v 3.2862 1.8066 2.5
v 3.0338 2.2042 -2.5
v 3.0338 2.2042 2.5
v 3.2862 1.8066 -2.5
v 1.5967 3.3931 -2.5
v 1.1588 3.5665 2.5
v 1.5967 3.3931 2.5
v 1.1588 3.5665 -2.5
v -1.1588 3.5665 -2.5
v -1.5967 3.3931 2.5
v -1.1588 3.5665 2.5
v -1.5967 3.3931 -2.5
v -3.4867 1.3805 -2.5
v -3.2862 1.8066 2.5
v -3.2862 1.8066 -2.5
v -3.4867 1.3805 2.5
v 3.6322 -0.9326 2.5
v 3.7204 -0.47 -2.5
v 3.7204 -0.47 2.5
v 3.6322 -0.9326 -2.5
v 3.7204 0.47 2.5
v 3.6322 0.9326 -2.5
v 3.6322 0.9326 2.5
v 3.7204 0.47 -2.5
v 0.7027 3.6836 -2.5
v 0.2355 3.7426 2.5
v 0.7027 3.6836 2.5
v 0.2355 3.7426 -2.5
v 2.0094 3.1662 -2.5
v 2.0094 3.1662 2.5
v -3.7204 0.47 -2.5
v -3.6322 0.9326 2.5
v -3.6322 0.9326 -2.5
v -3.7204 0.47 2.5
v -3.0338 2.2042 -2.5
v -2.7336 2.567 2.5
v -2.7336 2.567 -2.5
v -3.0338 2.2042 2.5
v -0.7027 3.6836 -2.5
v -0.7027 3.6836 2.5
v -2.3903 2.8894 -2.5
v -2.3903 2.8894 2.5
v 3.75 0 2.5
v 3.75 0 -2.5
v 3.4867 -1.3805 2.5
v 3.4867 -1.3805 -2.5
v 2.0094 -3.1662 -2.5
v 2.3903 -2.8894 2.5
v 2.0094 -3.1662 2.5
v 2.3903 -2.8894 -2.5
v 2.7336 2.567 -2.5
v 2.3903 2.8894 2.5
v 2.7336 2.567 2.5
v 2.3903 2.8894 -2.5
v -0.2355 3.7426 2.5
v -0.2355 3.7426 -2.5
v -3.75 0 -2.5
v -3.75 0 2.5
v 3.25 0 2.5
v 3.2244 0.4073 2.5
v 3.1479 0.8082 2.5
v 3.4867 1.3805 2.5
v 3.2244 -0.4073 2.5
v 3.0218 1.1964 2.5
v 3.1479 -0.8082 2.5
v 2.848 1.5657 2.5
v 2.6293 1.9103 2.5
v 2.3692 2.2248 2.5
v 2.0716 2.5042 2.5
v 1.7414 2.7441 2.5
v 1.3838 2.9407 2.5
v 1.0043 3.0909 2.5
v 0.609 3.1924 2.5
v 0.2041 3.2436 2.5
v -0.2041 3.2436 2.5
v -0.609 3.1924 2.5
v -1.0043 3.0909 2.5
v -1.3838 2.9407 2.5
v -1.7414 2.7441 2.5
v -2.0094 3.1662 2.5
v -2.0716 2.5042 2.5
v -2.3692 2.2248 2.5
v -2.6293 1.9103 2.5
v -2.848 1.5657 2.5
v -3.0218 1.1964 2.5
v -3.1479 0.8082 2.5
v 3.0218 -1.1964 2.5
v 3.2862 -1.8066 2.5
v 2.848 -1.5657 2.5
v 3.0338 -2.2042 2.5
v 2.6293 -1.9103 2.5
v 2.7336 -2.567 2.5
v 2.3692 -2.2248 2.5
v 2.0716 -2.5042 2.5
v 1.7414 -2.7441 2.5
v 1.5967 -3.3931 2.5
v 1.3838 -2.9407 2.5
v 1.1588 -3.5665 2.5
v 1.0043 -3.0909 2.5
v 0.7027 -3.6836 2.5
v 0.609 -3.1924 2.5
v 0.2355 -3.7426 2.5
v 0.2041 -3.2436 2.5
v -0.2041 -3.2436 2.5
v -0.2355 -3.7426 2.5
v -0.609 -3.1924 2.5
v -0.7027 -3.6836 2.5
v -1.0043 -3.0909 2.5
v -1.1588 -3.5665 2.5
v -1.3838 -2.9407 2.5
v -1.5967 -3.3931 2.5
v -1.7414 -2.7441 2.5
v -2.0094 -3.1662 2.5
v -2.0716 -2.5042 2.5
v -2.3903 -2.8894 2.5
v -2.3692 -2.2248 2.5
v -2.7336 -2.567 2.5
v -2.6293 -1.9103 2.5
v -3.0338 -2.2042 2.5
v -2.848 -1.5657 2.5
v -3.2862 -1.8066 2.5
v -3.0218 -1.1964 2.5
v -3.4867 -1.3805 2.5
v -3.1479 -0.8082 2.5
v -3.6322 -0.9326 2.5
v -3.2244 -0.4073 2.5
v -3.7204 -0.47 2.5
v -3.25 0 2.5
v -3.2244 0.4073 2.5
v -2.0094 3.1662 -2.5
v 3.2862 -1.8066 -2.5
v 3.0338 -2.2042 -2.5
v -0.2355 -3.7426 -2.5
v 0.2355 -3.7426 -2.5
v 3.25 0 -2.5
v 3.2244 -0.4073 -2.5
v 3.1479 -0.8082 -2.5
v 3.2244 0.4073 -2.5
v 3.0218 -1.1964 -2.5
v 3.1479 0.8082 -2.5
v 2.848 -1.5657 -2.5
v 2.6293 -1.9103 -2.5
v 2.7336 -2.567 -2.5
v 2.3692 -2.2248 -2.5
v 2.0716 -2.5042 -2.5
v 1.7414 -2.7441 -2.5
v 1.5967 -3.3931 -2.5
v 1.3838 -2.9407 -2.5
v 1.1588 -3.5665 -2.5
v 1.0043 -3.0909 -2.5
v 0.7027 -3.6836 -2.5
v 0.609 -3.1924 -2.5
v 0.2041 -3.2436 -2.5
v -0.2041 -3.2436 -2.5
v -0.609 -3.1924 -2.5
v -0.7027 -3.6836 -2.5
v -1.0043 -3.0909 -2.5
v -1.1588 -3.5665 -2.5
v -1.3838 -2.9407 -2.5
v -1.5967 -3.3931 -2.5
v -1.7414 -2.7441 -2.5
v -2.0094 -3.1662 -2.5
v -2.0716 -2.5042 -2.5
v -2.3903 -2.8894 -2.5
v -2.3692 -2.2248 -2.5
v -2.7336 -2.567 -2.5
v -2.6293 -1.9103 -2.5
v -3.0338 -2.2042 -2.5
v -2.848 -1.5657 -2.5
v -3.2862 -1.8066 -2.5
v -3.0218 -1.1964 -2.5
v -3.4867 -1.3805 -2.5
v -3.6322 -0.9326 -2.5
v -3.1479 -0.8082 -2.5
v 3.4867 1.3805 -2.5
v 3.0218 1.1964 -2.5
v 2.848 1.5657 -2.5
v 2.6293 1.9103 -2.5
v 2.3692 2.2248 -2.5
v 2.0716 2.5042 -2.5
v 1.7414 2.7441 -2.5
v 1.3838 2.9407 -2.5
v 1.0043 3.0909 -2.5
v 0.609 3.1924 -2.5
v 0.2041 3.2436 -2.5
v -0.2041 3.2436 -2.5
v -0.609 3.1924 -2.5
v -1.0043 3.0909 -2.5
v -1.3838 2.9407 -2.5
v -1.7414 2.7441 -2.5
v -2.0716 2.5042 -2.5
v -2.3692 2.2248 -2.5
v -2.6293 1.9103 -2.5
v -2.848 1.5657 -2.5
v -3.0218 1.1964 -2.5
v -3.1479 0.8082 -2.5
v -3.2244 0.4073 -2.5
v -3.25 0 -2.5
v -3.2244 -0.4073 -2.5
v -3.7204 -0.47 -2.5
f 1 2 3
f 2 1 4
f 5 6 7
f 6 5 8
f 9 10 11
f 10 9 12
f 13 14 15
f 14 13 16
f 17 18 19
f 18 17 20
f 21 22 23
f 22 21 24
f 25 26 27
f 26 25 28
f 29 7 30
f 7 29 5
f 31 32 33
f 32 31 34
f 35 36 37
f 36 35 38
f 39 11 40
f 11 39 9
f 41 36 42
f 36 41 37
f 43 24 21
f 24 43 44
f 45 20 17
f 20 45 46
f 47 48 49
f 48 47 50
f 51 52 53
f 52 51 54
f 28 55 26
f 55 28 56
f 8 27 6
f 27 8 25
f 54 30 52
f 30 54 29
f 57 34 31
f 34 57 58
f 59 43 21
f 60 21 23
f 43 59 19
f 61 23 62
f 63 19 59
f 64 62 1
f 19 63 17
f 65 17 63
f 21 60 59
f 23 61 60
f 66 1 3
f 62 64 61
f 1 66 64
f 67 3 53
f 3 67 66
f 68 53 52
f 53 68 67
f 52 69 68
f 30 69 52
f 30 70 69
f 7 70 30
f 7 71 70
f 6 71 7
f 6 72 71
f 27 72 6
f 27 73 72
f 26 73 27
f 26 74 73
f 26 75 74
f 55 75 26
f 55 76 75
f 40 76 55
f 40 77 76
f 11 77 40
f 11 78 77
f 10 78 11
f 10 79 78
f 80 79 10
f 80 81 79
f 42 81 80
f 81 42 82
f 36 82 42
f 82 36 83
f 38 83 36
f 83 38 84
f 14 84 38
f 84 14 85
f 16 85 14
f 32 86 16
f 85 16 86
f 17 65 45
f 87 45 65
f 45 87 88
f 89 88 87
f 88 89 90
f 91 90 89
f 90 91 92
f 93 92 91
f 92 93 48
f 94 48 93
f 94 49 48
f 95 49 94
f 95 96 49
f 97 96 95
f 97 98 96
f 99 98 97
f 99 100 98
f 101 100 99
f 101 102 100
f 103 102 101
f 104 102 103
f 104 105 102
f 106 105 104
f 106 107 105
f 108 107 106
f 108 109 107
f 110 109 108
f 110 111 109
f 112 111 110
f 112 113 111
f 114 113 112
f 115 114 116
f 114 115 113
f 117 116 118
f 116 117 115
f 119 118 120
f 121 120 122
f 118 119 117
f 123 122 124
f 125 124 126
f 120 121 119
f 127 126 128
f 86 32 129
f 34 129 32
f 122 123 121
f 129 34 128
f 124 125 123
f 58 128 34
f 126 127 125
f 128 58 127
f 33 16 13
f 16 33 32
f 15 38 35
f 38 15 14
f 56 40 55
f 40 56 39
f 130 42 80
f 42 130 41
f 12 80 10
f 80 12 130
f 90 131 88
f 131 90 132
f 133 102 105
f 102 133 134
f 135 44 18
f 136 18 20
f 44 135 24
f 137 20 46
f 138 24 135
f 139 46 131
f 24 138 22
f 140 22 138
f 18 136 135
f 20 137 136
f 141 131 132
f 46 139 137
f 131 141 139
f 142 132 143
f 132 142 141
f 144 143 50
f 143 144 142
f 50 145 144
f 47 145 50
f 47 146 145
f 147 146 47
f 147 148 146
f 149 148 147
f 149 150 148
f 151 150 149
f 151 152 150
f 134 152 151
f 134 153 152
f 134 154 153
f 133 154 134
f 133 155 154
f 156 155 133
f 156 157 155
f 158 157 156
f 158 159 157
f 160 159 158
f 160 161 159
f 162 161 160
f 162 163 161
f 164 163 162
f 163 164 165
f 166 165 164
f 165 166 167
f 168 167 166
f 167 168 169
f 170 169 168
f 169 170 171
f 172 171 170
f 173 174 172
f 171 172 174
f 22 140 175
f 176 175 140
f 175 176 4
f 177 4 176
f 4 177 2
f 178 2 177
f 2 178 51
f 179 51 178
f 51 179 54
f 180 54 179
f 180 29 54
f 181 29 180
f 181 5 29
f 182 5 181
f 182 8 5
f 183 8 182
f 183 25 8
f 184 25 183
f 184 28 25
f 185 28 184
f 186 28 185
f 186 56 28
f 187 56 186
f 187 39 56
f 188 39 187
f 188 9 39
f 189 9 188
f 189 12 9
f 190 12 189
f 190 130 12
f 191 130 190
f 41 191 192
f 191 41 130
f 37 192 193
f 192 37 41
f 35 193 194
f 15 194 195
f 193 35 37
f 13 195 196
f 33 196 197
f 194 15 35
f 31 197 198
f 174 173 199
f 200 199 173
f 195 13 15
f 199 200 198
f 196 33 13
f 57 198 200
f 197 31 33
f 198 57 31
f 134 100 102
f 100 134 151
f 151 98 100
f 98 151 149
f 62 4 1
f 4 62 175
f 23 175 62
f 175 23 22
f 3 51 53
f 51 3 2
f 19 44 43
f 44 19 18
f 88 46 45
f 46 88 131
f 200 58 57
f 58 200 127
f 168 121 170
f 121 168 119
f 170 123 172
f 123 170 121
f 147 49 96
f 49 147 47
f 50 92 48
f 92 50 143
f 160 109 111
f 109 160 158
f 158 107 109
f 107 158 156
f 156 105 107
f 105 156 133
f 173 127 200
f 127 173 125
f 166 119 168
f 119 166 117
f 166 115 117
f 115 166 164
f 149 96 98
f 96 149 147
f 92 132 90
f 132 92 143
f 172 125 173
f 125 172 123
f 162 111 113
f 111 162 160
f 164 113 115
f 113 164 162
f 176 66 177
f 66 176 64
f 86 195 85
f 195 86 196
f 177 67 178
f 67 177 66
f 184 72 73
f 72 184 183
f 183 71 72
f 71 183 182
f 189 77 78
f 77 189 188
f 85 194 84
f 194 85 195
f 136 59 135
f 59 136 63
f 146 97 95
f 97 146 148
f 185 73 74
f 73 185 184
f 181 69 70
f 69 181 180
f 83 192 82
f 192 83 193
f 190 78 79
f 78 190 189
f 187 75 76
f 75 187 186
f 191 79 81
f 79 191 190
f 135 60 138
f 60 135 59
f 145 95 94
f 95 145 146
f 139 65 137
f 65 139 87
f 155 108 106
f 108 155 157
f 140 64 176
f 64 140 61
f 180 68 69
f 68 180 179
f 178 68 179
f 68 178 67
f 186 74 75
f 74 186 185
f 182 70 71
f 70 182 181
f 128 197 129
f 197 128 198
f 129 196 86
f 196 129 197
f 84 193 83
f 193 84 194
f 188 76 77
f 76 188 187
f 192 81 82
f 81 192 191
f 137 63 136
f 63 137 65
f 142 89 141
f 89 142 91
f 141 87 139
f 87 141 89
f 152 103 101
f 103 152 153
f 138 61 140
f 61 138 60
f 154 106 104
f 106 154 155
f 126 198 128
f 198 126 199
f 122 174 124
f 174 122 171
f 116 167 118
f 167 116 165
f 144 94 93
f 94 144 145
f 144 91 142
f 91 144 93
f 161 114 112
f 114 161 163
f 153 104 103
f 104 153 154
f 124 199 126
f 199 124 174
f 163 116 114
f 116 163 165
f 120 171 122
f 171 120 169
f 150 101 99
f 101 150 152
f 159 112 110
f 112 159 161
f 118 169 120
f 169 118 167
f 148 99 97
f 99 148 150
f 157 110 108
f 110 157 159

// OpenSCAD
$fn = 50;


difference() {
	union() {
		translate(v = [0, 0, -2.5000000000]) {
			cylinder(h = 5, r = 3.7500000000);
		}
	}
	union() {
		translate(v = [0, 0, -100.0000000000]) {
			cylinder(h = 200, r = 3.2500000000);
		}
	}
}
